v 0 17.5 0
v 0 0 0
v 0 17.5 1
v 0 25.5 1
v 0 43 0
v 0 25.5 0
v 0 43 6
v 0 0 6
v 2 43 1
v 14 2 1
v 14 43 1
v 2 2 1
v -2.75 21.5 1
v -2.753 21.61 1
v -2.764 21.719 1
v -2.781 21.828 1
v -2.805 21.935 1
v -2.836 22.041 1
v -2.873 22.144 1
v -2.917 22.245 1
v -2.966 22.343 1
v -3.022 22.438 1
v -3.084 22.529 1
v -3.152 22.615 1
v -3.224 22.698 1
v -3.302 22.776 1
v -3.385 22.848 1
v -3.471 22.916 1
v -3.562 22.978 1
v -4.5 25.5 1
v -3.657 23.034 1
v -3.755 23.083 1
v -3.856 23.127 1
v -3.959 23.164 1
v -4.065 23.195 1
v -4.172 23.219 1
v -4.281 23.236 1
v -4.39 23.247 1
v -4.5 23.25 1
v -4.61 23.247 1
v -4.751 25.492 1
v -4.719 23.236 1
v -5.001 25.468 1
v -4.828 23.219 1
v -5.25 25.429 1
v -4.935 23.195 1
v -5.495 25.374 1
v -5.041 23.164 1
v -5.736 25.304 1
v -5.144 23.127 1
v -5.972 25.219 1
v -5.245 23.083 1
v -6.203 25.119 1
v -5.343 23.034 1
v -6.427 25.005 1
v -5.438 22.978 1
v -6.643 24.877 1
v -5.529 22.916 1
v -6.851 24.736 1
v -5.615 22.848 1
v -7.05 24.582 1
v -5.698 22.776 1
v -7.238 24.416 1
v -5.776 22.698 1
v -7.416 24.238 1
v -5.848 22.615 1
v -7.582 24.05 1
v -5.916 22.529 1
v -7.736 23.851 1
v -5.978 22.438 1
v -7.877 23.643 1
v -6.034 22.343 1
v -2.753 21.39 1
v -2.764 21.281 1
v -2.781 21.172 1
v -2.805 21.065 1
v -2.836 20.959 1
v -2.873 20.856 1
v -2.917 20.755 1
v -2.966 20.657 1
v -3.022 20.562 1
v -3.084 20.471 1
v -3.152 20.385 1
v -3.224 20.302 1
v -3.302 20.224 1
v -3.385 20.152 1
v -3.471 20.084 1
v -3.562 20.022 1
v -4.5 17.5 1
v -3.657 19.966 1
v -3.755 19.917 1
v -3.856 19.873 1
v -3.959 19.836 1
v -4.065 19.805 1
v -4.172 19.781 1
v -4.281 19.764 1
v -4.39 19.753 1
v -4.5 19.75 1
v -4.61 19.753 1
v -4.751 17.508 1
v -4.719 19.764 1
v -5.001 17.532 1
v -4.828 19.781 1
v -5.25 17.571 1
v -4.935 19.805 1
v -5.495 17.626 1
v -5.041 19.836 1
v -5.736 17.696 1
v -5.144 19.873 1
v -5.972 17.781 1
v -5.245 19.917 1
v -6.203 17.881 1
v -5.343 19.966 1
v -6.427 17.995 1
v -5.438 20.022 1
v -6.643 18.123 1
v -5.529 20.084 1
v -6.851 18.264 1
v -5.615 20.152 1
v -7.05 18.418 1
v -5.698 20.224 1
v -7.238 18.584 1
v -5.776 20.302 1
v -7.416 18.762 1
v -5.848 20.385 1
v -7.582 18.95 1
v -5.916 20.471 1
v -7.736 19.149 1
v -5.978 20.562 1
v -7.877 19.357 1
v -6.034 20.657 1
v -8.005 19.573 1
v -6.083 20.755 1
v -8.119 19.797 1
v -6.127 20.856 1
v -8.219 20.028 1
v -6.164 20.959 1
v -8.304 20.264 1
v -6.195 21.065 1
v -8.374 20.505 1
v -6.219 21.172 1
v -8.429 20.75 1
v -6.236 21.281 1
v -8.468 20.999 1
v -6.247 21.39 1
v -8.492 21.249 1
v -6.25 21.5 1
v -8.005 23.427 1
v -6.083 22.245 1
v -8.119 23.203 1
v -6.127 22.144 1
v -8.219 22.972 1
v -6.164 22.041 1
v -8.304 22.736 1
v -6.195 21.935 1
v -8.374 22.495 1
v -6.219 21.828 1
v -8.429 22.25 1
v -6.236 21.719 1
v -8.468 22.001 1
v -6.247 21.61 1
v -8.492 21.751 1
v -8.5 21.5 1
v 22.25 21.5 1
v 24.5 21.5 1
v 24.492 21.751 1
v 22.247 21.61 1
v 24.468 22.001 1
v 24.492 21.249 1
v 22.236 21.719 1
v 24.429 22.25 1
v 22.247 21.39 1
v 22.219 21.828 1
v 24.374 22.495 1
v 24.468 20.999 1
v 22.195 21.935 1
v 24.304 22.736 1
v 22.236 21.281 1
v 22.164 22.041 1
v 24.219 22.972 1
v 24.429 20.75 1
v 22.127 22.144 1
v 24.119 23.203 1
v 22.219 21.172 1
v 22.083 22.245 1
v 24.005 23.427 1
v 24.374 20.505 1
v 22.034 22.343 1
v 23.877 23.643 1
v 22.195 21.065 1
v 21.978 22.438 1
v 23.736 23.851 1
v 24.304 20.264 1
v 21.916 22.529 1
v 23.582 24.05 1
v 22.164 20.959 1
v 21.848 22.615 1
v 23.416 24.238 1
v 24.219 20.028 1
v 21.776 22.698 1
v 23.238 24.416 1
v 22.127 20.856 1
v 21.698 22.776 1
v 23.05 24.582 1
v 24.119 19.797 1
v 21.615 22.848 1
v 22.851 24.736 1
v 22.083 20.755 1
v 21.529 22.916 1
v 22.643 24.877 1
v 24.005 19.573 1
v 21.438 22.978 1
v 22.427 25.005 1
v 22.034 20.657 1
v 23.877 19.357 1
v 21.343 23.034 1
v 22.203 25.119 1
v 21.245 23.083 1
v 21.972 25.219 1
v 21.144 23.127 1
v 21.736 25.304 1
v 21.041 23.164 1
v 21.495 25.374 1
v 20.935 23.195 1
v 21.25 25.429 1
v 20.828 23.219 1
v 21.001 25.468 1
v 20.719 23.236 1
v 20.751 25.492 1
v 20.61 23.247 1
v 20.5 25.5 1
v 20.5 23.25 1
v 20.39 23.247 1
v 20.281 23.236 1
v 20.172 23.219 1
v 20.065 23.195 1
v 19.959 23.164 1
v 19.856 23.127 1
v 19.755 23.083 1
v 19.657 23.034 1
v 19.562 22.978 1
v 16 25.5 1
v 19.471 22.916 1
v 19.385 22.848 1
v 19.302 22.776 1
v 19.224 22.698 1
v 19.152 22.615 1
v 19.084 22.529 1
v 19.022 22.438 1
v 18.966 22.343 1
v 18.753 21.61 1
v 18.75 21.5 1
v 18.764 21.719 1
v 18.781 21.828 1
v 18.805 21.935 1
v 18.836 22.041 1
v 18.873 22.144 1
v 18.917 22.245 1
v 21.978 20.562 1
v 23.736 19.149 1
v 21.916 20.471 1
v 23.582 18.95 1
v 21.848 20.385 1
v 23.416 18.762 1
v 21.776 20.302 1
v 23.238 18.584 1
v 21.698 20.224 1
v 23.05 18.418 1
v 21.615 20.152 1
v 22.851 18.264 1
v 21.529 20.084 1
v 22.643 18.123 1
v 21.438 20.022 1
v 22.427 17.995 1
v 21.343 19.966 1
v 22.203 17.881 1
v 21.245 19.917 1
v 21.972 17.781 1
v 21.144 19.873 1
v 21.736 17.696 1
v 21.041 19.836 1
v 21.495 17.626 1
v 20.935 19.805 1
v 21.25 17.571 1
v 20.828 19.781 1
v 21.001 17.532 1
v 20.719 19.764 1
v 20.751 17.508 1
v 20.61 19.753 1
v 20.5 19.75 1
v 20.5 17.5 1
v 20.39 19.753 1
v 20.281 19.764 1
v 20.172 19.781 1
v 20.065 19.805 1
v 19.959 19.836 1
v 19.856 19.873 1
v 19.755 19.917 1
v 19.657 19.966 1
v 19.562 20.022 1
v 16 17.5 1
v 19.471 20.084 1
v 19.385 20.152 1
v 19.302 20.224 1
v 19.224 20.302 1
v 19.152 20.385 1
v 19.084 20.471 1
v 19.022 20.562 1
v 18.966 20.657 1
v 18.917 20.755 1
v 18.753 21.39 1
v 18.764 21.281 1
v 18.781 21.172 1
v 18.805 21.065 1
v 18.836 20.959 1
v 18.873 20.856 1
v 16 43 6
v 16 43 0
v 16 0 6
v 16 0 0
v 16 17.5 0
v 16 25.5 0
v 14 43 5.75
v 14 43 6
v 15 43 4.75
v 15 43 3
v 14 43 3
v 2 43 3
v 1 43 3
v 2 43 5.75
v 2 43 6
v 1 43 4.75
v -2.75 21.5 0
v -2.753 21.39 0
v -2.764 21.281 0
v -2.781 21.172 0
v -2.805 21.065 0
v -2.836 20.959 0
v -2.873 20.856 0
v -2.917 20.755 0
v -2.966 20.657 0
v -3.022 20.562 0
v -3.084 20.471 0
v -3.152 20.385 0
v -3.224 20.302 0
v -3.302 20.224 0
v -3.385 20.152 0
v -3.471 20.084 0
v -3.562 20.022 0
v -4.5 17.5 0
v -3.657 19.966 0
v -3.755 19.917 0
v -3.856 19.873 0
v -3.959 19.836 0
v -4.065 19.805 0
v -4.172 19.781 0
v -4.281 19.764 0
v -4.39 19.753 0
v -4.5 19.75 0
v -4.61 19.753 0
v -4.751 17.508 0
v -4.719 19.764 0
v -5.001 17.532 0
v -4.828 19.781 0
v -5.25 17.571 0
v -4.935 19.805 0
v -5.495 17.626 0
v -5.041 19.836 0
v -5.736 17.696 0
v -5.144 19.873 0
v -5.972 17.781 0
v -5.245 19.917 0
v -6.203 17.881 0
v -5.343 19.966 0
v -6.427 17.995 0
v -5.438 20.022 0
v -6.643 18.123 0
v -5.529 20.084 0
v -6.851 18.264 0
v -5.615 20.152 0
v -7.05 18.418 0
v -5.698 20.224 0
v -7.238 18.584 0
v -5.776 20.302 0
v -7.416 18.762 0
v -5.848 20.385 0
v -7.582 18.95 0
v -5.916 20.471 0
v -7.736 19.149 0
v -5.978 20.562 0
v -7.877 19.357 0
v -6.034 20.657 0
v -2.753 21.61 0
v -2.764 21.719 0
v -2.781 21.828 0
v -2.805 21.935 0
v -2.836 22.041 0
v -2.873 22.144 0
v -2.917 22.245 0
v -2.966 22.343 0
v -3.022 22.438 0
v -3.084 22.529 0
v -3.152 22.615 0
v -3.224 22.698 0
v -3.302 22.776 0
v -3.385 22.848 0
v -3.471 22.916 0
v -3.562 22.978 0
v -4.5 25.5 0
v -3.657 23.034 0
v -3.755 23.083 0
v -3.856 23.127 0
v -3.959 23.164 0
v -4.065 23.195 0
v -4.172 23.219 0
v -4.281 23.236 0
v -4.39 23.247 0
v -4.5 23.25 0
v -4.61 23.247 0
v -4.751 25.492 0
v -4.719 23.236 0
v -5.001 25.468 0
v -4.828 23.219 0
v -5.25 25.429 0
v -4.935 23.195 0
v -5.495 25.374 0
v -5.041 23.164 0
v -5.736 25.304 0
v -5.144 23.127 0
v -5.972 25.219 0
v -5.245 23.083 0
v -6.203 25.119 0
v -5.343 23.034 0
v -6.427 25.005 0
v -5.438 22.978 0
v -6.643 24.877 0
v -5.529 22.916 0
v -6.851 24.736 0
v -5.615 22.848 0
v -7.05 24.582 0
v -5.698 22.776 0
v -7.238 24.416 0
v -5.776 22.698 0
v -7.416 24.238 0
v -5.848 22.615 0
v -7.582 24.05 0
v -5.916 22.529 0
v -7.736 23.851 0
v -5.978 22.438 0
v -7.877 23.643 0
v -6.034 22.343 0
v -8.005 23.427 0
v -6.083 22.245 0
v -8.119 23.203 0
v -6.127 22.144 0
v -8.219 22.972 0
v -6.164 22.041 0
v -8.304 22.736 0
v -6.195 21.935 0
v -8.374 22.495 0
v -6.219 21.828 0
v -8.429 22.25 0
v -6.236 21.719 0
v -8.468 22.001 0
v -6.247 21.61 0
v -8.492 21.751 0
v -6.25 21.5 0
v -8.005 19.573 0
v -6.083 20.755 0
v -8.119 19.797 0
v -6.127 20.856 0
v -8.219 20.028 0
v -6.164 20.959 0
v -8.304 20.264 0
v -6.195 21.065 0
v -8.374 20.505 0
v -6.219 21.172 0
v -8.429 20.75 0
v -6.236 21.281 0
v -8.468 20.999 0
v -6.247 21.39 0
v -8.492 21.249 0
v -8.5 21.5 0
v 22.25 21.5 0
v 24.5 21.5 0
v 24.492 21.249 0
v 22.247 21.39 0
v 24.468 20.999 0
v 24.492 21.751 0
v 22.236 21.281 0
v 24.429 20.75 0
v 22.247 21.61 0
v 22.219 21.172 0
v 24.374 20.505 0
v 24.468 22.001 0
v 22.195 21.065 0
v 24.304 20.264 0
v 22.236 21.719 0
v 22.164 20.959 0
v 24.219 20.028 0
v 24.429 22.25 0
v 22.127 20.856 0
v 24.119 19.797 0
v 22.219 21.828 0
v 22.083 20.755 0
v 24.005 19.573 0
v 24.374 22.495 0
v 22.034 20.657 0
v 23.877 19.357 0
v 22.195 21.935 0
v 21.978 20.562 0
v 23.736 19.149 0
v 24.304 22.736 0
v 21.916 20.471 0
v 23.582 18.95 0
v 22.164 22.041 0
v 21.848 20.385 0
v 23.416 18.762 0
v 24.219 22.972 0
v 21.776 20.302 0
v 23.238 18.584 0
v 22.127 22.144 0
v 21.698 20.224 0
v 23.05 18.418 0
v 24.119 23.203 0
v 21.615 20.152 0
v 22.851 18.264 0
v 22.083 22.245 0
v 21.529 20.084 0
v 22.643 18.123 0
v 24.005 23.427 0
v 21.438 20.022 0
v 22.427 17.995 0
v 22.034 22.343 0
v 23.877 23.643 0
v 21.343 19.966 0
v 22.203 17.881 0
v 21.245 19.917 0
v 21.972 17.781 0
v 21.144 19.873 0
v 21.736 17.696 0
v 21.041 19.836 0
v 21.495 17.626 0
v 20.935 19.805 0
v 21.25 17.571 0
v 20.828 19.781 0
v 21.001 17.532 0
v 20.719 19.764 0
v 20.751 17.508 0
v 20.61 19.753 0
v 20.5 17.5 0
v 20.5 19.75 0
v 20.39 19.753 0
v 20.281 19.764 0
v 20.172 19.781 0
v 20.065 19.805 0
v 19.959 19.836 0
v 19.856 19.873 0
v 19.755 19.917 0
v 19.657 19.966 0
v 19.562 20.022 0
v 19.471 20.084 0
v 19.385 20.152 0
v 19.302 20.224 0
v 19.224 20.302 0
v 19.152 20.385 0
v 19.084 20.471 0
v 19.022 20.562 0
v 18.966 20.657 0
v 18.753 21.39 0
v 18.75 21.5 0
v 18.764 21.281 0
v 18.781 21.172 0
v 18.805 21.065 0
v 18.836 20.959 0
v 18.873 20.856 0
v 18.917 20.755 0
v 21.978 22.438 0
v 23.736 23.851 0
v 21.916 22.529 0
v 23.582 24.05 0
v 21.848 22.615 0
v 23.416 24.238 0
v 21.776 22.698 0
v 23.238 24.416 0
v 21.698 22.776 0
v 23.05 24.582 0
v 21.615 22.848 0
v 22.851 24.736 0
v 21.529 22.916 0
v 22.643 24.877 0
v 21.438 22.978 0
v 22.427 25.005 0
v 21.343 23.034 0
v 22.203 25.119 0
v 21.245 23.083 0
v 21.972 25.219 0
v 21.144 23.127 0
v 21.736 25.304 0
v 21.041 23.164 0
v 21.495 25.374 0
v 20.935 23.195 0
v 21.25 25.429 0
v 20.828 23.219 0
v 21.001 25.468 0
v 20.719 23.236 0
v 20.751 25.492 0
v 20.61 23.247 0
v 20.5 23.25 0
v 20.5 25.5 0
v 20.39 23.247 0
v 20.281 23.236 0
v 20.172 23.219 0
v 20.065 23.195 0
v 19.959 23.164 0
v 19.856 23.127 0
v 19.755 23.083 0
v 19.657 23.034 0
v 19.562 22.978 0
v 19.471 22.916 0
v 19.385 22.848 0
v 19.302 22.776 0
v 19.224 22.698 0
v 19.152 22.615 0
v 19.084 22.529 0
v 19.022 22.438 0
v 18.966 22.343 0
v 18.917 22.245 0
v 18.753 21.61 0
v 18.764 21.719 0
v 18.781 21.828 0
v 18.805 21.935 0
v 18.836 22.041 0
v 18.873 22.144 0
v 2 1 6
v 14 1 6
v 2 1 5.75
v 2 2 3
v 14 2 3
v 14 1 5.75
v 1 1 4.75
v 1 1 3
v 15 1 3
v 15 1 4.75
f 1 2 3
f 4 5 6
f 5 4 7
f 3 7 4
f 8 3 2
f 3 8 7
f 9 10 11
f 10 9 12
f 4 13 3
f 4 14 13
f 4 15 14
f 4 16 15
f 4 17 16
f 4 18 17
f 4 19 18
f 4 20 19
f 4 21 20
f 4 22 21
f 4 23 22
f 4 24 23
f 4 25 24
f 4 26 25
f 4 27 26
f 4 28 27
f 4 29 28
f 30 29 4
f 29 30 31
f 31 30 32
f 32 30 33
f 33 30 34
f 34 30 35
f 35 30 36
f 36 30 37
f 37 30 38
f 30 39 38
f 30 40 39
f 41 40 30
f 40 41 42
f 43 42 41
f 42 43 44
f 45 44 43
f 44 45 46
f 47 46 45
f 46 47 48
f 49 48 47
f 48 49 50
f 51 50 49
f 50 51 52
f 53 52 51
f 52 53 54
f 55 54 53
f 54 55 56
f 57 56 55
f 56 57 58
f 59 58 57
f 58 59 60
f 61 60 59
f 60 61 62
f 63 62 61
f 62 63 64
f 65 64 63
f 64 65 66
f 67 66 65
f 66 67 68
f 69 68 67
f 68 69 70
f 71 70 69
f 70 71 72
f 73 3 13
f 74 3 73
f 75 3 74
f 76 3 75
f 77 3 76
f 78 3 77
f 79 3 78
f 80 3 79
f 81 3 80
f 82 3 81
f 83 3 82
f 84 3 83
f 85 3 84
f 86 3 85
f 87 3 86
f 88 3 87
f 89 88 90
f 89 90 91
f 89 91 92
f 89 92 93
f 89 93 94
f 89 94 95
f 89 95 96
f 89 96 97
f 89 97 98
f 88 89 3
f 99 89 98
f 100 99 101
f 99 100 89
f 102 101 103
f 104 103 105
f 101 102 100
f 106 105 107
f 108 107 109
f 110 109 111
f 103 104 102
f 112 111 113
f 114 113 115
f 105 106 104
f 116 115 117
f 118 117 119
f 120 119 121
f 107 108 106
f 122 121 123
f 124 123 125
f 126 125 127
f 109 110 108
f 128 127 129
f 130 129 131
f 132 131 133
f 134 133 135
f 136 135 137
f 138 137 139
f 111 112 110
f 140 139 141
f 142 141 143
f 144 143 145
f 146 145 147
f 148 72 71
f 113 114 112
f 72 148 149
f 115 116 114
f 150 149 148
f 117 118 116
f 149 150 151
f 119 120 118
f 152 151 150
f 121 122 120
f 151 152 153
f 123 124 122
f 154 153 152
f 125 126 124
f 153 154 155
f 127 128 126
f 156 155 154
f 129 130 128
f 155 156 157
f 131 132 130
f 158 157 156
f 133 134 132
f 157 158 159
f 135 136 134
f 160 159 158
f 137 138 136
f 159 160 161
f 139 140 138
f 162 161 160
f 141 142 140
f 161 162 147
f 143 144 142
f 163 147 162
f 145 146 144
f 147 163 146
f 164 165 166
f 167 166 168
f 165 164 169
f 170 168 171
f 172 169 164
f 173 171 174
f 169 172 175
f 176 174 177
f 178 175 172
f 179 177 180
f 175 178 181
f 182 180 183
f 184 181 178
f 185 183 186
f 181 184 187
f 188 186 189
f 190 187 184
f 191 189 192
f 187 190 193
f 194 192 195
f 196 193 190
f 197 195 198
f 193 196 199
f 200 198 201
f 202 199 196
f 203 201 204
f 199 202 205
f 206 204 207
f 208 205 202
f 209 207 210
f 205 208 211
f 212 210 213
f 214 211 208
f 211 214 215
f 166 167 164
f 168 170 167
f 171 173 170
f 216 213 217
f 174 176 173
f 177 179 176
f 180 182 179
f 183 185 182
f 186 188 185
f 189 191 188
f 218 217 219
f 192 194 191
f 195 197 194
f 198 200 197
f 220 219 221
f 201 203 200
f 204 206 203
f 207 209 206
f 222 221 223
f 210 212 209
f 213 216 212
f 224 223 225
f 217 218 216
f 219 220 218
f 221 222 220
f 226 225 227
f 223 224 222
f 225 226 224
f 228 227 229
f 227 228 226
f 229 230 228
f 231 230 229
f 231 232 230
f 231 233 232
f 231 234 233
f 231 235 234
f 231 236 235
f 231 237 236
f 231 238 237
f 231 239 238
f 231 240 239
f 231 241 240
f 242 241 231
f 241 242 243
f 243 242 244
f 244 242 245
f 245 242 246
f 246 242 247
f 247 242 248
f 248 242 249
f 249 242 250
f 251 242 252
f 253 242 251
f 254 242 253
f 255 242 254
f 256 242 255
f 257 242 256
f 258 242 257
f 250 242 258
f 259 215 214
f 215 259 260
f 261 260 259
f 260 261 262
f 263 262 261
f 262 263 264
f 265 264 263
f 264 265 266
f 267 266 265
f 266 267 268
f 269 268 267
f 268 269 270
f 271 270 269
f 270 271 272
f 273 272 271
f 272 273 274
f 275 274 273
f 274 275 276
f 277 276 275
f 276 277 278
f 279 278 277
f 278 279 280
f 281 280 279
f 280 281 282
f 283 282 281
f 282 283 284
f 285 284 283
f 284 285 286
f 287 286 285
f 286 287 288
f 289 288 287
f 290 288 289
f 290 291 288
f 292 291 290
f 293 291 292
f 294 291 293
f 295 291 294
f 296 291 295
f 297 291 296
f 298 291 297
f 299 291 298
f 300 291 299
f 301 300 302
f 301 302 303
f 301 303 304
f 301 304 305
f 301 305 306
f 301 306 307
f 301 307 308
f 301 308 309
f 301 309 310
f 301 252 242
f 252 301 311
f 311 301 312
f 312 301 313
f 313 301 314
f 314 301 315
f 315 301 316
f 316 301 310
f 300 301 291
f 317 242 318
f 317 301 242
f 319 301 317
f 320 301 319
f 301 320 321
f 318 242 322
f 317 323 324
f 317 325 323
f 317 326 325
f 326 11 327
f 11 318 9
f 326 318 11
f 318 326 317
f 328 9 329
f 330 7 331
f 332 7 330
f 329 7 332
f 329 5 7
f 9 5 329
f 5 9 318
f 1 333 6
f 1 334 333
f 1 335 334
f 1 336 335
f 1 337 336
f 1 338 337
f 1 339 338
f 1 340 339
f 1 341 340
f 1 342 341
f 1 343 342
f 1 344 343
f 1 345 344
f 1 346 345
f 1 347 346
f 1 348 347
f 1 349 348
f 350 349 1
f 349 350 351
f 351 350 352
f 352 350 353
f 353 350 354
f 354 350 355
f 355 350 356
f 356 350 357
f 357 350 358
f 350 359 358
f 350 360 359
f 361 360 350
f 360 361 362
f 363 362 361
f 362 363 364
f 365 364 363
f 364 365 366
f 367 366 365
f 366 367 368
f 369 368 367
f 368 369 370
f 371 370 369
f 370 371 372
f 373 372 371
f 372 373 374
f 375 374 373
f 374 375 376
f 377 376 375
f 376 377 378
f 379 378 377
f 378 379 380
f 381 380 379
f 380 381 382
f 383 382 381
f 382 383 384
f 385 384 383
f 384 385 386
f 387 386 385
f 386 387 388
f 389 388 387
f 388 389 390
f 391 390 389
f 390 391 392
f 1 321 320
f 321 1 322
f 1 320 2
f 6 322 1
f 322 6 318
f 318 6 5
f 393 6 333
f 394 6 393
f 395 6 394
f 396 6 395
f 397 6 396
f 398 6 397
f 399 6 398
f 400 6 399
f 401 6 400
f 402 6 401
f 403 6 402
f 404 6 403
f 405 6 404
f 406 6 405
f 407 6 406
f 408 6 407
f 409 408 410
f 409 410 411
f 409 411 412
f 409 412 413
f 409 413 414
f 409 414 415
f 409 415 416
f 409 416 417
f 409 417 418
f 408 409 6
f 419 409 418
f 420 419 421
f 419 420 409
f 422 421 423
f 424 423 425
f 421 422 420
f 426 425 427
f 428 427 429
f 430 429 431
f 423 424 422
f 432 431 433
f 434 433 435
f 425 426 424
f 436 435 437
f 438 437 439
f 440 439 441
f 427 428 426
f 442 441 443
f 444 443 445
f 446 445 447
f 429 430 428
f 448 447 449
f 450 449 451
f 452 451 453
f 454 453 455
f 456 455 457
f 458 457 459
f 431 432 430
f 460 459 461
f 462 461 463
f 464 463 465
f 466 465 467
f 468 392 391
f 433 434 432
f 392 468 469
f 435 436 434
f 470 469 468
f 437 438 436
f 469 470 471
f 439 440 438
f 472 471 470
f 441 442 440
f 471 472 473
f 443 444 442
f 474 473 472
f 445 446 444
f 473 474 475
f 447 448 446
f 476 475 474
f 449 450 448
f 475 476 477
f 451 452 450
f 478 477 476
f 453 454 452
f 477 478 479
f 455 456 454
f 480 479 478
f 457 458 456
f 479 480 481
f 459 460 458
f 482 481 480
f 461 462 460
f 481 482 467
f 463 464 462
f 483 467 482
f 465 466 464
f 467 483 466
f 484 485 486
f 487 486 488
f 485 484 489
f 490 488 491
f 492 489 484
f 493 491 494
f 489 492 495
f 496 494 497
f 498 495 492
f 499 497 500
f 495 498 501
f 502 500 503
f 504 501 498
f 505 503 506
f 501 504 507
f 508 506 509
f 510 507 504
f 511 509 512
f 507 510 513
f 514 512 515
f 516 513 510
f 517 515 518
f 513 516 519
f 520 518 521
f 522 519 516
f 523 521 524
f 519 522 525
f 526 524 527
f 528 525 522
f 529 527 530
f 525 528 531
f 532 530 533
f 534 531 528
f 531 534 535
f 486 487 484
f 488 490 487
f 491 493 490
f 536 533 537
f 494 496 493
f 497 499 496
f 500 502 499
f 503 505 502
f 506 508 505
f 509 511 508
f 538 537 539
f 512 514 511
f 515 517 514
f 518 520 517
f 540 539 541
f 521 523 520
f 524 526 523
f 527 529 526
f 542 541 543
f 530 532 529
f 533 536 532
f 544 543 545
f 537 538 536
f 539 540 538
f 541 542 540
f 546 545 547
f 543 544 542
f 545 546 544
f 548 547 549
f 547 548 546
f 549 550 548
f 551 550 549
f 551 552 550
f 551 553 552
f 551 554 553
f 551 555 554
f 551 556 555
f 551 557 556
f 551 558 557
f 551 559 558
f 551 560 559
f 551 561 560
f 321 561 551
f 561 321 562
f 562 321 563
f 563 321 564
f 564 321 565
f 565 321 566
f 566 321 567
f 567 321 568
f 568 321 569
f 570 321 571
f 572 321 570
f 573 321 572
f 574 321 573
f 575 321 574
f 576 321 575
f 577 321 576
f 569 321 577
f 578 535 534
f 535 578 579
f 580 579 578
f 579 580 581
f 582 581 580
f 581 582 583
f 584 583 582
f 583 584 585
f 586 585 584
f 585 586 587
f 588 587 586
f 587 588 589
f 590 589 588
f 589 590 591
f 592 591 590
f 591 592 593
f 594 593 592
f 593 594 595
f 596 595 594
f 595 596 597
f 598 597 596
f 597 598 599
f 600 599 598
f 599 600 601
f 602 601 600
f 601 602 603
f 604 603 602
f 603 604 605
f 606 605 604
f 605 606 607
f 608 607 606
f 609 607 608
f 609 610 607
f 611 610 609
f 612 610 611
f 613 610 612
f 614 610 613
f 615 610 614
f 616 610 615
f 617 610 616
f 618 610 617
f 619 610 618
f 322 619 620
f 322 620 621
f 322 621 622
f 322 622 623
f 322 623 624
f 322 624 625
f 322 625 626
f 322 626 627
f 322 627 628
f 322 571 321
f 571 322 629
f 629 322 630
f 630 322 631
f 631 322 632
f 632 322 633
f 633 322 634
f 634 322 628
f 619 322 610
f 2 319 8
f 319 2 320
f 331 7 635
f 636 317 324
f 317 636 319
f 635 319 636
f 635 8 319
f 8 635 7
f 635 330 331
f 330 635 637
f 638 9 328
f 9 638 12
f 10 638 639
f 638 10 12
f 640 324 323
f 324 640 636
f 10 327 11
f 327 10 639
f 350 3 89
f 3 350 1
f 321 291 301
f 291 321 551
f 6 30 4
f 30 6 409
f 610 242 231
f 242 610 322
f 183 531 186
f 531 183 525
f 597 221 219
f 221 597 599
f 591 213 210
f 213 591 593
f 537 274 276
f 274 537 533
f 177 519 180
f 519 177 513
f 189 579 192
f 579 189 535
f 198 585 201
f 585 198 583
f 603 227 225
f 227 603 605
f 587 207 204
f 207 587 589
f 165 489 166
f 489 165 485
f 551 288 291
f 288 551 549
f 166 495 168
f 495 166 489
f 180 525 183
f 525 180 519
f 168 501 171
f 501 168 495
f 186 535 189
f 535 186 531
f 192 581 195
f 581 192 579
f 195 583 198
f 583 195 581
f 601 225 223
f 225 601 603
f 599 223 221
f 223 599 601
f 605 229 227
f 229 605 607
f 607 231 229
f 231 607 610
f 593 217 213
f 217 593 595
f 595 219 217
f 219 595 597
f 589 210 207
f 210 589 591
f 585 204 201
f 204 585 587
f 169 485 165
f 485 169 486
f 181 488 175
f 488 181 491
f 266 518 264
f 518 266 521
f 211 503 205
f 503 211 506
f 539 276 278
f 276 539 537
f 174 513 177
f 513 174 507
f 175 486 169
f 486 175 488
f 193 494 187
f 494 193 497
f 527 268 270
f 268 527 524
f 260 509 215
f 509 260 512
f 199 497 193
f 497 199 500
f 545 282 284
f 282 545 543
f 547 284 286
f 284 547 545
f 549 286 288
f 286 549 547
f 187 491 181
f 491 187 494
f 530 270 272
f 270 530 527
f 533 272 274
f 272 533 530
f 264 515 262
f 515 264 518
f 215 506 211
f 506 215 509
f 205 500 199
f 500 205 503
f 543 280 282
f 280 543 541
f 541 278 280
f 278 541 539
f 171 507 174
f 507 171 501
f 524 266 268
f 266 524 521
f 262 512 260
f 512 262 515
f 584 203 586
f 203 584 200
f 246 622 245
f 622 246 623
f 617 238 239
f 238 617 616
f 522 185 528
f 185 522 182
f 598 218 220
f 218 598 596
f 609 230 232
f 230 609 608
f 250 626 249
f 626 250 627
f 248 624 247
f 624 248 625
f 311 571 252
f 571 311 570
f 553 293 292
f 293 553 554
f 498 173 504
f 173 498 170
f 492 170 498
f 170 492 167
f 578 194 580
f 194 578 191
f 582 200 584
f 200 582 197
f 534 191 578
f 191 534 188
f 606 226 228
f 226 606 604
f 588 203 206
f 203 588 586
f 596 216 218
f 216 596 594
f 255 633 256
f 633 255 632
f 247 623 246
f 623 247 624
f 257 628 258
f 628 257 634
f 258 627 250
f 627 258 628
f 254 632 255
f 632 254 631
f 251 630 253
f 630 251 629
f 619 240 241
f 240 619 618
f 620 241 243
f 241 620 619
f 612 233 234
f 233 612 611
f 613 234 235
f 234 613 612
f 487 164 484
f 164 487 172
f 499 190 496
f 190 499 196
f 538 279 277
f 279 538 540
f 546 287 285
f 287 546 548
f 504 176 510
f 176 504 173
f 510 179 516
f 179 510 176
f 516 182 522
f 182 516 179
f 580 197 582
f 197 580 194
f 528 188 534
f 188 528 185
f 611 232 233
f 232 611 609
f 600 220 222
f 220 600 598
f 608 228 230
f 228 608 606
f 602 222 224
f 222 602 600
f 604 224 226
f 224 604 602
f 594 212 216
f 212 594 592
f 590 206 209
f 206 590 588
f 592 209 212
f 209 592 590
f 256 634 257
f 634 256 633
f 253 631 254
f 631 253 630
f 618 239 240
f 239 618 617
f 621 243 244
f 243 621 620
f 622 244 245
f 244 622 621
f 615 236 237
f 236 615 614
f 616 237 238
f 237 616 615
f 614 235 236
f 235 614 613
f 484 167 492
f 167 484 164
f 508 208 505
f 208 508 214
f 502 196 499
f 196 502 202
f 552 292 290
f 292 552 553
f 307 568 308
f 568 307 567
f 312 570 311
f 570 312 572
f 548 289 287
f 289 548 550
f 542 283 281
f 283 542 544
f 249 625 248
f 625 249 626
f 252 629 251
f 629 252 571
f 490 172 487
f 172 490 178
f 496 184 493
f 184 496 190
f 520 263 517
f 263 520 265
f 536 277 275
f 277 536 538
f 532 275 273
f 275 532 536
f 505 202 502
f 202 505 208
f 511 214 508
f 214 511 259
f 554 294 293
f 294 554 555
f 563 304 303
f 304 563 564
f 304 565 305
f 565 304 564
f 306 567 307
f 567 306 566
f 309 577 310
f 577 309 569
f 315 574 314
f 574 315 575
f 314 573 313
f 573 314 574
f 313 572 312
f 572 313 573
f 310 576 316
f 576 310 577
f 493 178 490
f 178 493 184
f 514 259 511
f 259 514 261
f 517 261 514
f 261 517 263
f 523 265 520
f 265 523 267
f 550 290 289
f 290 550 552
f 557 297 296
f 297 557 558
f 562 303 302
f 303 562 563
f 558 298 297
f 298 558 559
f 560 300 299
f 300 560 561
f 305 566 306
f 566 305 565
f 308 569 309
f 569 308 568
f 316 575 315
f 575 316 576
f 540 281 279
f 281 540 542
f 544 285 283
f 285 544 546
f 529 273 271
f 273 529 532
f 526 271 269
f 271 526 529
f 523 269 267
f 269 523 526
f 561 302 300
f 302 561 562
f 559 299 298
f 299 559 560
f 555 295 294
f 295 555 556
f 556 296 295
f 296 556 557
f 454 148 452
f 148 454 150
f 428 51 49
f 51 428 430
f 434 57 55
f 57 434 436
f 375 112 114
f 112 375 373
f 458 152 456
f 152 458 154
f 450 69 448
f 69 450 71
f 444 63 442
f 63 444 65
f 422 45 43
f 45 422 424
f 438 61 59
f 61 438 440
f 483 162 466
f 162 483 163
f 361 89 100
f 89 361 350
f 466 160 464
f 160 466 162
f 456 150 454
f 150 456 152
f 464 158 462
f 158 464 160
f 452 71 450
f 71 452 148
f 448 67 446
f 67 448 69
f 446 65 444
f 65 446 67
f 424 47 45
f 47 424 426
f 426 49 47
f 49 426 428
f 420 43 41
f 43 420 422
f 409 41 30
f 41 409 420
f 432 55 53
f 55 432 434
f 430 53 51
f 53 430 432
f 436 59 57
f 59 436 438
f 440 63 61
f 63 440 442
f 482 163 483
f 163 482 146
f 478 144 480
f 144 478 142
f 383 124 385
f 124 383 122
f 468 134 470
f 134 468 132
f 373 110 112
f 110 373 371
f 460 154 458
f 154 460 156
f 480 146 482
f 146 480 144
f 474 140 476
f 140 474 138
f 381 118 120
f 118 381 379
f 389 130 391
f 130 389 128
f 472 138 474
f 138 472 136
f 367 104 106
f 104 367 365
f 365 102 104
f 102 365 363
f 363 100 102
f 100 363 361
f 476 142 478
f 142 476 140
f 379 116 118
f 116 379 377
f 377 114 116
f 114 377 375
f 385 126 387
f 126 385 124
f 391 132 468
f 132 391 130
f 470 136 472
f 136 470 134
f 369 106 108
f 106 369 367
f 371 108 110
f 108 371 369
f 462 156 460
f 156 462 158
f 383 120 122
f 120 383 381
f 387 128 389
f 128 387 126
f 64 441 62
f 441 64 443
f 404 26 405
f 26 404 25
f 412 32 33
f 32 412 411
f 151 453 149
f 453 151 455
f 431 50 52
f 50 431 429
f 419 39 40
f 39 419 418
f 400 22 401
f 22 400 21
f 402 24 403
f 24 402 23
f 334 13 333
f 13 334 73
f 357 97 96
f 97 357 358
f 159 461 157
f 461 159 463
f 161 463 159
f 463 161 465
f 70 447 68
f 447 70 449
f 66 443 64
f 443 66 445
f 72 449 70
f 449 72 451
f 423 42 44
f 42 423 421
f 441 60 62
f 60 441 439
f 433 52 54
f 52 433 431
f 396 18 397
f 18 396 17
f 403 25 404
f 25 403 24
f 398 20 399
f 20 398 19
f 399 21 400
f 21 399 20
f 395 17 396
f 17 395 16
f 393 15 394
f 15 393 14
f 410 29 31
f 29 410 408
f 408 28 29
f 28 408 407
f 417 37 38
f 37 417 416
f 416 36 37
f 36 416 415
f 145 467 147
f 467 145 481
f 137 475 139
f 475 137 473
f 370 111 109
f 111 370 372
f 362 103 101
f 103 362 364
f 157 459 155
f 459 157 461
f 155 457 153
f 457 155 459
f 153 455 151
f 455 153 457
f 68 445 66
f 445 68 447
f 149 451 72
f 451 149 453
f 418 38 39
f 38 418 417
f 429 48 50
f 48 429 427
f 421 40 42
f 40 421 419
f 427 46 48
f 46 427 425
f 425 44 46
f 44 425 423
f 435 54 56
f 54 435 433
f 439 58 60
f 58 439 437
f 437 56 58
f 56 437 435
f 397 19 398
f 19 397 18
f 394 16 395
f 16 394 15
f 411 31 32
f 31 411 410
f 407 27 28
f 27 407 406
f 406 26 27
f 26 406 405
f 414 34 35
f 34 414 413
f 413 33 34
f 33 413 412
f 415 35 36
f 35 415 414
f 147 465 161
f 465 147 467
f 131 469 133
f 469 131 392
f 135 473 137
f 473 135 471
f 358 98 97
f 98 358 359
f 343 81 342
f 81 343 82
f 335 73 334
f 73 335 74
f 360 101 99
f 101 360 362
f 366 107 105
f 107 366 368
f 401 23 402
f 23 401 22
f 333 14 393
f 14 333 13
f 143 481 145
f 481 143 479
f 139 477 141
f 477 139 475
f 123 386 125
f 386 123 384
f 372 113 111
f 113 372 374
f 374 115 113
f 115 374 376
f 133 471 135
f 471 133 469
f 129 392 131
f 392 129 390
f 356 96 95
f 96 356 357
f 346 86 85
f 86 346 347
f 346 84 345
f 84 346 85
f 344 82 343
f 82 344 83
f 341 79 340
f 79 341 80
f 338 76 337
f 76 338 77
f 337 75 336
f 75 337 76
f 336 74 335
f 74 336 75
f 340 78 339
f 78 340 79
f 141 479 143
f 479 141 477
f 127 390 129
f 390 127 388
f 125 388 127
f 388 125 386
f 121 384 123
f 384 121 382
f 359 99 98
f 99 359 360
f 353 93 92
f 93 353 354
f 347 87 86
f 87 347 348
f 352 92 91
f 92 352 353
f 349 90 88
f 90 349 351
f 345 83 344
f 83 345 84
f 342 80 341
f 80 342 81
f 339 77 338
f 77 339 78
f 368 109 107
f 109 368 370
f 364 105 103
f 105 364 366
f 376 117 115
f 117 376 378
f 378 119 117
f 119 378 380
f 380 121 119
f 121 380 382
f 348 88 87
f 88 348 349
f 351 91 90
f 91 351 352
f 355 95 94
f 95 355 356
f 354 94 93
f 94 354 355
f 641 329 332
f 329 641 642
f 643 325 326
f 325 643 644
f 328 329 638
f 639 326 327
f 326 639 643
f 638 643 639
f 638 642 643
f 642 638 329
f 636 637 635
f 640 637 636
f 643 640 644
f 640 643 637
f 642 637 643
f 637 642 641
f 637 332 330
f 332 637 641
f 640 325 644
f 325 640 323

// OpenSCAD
/* pcb_box_slide_with_tabs.scad
 * By Nicholas C Lewis - Jan 1, 2011
 * http://www.thingiverse.com/thing:5396 
 *
 * derived from pcb_box_slide.scad 
 *     Parametric, open PCB-box (slide-in) by chlunde
 *     http://www.thingiverse.com/thing:4071
 *
 * CHANGES
 * - adjusted to fit Arduino Mega
 * - added mounting tabs
 * - turned off cutouts
 * - adjusted bottom cutout size
 */


$fn=100;

pcb_width = 14;
pcb_length = 41;
pcb_height =1.75;
slisse = 1;

pcb_bottom_margin = 2;
wall_width_thick = 2;
wall_width = wall_width_thick-slisse;
box_height = 6;

// Tab and Mounting Parameters
tab_hole_radius=3.5/2;
tab_outer_radius=8/2;
tab_mount_width = 25;		// X - center to center of mounting hole
tab_mount_length = 0;		// Y - center to center of mounting hole



module tab() {
	difference(){
		union() {
			translate([-tab_outer_radius,-tab_outer_radius,0])
			cube([tab_outer_radius,2*tab_outer_radius,wall_width]);
			translate([-tab_outer_radius,0,0])
				cylinder(r=tab_outer_radius, h = wall_width);
		}
		translate([-tab_outer_radius,0,0])
		cylinder(r= tab_hole_radius, h = wall_width+3,center=true);
	}

}

module JDtab(X, Y) {
	rotate(atan(Y / X), [0,0,1])
	difference(){
		union() {
			translate([0,-tab_outer_radius,0])
			cube([sqrt(X*X+Y*Y),2*tab_outer_radius,wall_width]);
			translate([sqrt(X*X+Y*Y),0,0])
				cylinder(r=tab_outer_radius, h = wall_width);
		}
		translate([sqrt(X*X+Y*Y),0,0])
		cylinder(r= tab_hole_radius, h = wall_width+3,center=true);
	}

}

module box() {
  union() {
    cube([pcb_width + 2*wall_width, pcb_length + 2*wall_width, wall_width]);

    cube([wall_width_thick, pcb_length + 2*wall_width, box_height]);

    cube([pcb_width + 2*wall_width, wall_width_thick, box_height]);

    %translate([0, pcb_length+wall_width, 0])
      cube([pcb_width + 2*wall_width,wall_width,box_height]);
    translate([pcb_width + wall_width - slisse,0,0])
      cube([wall_width_thick, pcb_length + 2*wall_width, box_height]);
  }

// ORIGINAL Tabs
//comment out this part to remove tabs
// for(i=[5,(pcb_length + 2*wall_width)/2,pcb_length + 2*wall_width-5]){
//	translate([0,i,0])tab();
//	translate([pcb_width + 2*wall_width,i,0])mirror()tab();
// }

// JamesDavid's Tabs
  translate([(pcb_width + 2*wall_width)/2, (pcb_length + 2*wall_width)/2, 0]) {

// If you want tabs on the Left leave uncommented
   JDtab(tab_mount_width/2, tab_mount_length/2);
   JDtab(-tab_mount_width/2, tab_mount_length/2);

// If you want tabs on the Right leave uncommented
   mirror()JDtab(tab_mount_width/2, tab_mount_length/2);
   mirror()JDtab(-tab_mount_width/2, tab_mount_length/2);
  }
}

module pcb() {
  translate([wall_width, wall_width, wall_width + pcb_bottom_margin])
    cube([pcb_width,pcb_length + wall_width + 0.1,pcb_height]);
  translate([wall_width, wall_width, wall_width + pcb_bottom_margin+pcb_height])rotate([0,45,0])
    cube([pcb_height,pcb_length + wall_width + 0.1,pcb_height]);
  translate([wall_width+pcb_width-2*cos(45)*pcb_height, wall_width, wall_width + pcb_bottom_margin+pcb_height])rotate([0,45,0])
    cube([pcb_height,pcb_length + wall_width + 0.1,pcb_height]);
  translate([wall_width_thick, wall_width, wall_width + pcb_bottom_margin])
    cube([pcb_width-2*slisse,pcb_length + wall_width + 0.1,box_height]);

}



module holes() {
  *translate([wall_width + pcb_width/2, wall_width_thick + 0.1, pcb_width/2+wall_width])
    rotate(a=90,v=[1,0,0])
      cylinder(r=pcb_width/2, h=wall_width_thick + 0.2);

  *translate([-0.1, wall_width + pcb_length/2, pcb_length/2 + wall_width])
    rotate(a=90,v=[0,1,0])
      cylinder(r=pcb_length/2, h=wall_width_thick + 0.2);

  *translate([pcb_width + wall_width - slisse - 0.1, wall_width + pcb_length/2, pcb_length/2 + wall_width])
    rotate(a=90,v=[0,1,0])
      cylinder(r=pcb_length/2, h=wall_width_thick + 0.2);

 * translate([pcb_width/2 + wall_width, wall_width + pcb_length/2, -0.1])
    rotate(a=0,v=[0,1,0])
      cylinder(r=min(pcb_length,pcb_width)/2 - wall_width/2, h=wall_width_thick + 0.2);
   
  inner_margin = 9;
  translate([inner_margin +wall_width, inner_margin+wall_width, -0.1])
    cube([pcb_width-inner_margin*2,pcb_length -inner_margin*2,wall_width + 0.2]);
}

difference() {
 box();
 pcb();
 holes();
//  JDtab(tab_mount_width/2, tab_mount_length/2);

}

* color([1,0,0])
  translate([pcb_width/2 + wall_width, wall_width + pcb_length/2, -0.1])
    rotate(a=0,v=[0,1,0])
      cylinder(r=min(pcb_length,pcb_width)/2 - wall_width/2, h=wall_width_thick + 0.2);
